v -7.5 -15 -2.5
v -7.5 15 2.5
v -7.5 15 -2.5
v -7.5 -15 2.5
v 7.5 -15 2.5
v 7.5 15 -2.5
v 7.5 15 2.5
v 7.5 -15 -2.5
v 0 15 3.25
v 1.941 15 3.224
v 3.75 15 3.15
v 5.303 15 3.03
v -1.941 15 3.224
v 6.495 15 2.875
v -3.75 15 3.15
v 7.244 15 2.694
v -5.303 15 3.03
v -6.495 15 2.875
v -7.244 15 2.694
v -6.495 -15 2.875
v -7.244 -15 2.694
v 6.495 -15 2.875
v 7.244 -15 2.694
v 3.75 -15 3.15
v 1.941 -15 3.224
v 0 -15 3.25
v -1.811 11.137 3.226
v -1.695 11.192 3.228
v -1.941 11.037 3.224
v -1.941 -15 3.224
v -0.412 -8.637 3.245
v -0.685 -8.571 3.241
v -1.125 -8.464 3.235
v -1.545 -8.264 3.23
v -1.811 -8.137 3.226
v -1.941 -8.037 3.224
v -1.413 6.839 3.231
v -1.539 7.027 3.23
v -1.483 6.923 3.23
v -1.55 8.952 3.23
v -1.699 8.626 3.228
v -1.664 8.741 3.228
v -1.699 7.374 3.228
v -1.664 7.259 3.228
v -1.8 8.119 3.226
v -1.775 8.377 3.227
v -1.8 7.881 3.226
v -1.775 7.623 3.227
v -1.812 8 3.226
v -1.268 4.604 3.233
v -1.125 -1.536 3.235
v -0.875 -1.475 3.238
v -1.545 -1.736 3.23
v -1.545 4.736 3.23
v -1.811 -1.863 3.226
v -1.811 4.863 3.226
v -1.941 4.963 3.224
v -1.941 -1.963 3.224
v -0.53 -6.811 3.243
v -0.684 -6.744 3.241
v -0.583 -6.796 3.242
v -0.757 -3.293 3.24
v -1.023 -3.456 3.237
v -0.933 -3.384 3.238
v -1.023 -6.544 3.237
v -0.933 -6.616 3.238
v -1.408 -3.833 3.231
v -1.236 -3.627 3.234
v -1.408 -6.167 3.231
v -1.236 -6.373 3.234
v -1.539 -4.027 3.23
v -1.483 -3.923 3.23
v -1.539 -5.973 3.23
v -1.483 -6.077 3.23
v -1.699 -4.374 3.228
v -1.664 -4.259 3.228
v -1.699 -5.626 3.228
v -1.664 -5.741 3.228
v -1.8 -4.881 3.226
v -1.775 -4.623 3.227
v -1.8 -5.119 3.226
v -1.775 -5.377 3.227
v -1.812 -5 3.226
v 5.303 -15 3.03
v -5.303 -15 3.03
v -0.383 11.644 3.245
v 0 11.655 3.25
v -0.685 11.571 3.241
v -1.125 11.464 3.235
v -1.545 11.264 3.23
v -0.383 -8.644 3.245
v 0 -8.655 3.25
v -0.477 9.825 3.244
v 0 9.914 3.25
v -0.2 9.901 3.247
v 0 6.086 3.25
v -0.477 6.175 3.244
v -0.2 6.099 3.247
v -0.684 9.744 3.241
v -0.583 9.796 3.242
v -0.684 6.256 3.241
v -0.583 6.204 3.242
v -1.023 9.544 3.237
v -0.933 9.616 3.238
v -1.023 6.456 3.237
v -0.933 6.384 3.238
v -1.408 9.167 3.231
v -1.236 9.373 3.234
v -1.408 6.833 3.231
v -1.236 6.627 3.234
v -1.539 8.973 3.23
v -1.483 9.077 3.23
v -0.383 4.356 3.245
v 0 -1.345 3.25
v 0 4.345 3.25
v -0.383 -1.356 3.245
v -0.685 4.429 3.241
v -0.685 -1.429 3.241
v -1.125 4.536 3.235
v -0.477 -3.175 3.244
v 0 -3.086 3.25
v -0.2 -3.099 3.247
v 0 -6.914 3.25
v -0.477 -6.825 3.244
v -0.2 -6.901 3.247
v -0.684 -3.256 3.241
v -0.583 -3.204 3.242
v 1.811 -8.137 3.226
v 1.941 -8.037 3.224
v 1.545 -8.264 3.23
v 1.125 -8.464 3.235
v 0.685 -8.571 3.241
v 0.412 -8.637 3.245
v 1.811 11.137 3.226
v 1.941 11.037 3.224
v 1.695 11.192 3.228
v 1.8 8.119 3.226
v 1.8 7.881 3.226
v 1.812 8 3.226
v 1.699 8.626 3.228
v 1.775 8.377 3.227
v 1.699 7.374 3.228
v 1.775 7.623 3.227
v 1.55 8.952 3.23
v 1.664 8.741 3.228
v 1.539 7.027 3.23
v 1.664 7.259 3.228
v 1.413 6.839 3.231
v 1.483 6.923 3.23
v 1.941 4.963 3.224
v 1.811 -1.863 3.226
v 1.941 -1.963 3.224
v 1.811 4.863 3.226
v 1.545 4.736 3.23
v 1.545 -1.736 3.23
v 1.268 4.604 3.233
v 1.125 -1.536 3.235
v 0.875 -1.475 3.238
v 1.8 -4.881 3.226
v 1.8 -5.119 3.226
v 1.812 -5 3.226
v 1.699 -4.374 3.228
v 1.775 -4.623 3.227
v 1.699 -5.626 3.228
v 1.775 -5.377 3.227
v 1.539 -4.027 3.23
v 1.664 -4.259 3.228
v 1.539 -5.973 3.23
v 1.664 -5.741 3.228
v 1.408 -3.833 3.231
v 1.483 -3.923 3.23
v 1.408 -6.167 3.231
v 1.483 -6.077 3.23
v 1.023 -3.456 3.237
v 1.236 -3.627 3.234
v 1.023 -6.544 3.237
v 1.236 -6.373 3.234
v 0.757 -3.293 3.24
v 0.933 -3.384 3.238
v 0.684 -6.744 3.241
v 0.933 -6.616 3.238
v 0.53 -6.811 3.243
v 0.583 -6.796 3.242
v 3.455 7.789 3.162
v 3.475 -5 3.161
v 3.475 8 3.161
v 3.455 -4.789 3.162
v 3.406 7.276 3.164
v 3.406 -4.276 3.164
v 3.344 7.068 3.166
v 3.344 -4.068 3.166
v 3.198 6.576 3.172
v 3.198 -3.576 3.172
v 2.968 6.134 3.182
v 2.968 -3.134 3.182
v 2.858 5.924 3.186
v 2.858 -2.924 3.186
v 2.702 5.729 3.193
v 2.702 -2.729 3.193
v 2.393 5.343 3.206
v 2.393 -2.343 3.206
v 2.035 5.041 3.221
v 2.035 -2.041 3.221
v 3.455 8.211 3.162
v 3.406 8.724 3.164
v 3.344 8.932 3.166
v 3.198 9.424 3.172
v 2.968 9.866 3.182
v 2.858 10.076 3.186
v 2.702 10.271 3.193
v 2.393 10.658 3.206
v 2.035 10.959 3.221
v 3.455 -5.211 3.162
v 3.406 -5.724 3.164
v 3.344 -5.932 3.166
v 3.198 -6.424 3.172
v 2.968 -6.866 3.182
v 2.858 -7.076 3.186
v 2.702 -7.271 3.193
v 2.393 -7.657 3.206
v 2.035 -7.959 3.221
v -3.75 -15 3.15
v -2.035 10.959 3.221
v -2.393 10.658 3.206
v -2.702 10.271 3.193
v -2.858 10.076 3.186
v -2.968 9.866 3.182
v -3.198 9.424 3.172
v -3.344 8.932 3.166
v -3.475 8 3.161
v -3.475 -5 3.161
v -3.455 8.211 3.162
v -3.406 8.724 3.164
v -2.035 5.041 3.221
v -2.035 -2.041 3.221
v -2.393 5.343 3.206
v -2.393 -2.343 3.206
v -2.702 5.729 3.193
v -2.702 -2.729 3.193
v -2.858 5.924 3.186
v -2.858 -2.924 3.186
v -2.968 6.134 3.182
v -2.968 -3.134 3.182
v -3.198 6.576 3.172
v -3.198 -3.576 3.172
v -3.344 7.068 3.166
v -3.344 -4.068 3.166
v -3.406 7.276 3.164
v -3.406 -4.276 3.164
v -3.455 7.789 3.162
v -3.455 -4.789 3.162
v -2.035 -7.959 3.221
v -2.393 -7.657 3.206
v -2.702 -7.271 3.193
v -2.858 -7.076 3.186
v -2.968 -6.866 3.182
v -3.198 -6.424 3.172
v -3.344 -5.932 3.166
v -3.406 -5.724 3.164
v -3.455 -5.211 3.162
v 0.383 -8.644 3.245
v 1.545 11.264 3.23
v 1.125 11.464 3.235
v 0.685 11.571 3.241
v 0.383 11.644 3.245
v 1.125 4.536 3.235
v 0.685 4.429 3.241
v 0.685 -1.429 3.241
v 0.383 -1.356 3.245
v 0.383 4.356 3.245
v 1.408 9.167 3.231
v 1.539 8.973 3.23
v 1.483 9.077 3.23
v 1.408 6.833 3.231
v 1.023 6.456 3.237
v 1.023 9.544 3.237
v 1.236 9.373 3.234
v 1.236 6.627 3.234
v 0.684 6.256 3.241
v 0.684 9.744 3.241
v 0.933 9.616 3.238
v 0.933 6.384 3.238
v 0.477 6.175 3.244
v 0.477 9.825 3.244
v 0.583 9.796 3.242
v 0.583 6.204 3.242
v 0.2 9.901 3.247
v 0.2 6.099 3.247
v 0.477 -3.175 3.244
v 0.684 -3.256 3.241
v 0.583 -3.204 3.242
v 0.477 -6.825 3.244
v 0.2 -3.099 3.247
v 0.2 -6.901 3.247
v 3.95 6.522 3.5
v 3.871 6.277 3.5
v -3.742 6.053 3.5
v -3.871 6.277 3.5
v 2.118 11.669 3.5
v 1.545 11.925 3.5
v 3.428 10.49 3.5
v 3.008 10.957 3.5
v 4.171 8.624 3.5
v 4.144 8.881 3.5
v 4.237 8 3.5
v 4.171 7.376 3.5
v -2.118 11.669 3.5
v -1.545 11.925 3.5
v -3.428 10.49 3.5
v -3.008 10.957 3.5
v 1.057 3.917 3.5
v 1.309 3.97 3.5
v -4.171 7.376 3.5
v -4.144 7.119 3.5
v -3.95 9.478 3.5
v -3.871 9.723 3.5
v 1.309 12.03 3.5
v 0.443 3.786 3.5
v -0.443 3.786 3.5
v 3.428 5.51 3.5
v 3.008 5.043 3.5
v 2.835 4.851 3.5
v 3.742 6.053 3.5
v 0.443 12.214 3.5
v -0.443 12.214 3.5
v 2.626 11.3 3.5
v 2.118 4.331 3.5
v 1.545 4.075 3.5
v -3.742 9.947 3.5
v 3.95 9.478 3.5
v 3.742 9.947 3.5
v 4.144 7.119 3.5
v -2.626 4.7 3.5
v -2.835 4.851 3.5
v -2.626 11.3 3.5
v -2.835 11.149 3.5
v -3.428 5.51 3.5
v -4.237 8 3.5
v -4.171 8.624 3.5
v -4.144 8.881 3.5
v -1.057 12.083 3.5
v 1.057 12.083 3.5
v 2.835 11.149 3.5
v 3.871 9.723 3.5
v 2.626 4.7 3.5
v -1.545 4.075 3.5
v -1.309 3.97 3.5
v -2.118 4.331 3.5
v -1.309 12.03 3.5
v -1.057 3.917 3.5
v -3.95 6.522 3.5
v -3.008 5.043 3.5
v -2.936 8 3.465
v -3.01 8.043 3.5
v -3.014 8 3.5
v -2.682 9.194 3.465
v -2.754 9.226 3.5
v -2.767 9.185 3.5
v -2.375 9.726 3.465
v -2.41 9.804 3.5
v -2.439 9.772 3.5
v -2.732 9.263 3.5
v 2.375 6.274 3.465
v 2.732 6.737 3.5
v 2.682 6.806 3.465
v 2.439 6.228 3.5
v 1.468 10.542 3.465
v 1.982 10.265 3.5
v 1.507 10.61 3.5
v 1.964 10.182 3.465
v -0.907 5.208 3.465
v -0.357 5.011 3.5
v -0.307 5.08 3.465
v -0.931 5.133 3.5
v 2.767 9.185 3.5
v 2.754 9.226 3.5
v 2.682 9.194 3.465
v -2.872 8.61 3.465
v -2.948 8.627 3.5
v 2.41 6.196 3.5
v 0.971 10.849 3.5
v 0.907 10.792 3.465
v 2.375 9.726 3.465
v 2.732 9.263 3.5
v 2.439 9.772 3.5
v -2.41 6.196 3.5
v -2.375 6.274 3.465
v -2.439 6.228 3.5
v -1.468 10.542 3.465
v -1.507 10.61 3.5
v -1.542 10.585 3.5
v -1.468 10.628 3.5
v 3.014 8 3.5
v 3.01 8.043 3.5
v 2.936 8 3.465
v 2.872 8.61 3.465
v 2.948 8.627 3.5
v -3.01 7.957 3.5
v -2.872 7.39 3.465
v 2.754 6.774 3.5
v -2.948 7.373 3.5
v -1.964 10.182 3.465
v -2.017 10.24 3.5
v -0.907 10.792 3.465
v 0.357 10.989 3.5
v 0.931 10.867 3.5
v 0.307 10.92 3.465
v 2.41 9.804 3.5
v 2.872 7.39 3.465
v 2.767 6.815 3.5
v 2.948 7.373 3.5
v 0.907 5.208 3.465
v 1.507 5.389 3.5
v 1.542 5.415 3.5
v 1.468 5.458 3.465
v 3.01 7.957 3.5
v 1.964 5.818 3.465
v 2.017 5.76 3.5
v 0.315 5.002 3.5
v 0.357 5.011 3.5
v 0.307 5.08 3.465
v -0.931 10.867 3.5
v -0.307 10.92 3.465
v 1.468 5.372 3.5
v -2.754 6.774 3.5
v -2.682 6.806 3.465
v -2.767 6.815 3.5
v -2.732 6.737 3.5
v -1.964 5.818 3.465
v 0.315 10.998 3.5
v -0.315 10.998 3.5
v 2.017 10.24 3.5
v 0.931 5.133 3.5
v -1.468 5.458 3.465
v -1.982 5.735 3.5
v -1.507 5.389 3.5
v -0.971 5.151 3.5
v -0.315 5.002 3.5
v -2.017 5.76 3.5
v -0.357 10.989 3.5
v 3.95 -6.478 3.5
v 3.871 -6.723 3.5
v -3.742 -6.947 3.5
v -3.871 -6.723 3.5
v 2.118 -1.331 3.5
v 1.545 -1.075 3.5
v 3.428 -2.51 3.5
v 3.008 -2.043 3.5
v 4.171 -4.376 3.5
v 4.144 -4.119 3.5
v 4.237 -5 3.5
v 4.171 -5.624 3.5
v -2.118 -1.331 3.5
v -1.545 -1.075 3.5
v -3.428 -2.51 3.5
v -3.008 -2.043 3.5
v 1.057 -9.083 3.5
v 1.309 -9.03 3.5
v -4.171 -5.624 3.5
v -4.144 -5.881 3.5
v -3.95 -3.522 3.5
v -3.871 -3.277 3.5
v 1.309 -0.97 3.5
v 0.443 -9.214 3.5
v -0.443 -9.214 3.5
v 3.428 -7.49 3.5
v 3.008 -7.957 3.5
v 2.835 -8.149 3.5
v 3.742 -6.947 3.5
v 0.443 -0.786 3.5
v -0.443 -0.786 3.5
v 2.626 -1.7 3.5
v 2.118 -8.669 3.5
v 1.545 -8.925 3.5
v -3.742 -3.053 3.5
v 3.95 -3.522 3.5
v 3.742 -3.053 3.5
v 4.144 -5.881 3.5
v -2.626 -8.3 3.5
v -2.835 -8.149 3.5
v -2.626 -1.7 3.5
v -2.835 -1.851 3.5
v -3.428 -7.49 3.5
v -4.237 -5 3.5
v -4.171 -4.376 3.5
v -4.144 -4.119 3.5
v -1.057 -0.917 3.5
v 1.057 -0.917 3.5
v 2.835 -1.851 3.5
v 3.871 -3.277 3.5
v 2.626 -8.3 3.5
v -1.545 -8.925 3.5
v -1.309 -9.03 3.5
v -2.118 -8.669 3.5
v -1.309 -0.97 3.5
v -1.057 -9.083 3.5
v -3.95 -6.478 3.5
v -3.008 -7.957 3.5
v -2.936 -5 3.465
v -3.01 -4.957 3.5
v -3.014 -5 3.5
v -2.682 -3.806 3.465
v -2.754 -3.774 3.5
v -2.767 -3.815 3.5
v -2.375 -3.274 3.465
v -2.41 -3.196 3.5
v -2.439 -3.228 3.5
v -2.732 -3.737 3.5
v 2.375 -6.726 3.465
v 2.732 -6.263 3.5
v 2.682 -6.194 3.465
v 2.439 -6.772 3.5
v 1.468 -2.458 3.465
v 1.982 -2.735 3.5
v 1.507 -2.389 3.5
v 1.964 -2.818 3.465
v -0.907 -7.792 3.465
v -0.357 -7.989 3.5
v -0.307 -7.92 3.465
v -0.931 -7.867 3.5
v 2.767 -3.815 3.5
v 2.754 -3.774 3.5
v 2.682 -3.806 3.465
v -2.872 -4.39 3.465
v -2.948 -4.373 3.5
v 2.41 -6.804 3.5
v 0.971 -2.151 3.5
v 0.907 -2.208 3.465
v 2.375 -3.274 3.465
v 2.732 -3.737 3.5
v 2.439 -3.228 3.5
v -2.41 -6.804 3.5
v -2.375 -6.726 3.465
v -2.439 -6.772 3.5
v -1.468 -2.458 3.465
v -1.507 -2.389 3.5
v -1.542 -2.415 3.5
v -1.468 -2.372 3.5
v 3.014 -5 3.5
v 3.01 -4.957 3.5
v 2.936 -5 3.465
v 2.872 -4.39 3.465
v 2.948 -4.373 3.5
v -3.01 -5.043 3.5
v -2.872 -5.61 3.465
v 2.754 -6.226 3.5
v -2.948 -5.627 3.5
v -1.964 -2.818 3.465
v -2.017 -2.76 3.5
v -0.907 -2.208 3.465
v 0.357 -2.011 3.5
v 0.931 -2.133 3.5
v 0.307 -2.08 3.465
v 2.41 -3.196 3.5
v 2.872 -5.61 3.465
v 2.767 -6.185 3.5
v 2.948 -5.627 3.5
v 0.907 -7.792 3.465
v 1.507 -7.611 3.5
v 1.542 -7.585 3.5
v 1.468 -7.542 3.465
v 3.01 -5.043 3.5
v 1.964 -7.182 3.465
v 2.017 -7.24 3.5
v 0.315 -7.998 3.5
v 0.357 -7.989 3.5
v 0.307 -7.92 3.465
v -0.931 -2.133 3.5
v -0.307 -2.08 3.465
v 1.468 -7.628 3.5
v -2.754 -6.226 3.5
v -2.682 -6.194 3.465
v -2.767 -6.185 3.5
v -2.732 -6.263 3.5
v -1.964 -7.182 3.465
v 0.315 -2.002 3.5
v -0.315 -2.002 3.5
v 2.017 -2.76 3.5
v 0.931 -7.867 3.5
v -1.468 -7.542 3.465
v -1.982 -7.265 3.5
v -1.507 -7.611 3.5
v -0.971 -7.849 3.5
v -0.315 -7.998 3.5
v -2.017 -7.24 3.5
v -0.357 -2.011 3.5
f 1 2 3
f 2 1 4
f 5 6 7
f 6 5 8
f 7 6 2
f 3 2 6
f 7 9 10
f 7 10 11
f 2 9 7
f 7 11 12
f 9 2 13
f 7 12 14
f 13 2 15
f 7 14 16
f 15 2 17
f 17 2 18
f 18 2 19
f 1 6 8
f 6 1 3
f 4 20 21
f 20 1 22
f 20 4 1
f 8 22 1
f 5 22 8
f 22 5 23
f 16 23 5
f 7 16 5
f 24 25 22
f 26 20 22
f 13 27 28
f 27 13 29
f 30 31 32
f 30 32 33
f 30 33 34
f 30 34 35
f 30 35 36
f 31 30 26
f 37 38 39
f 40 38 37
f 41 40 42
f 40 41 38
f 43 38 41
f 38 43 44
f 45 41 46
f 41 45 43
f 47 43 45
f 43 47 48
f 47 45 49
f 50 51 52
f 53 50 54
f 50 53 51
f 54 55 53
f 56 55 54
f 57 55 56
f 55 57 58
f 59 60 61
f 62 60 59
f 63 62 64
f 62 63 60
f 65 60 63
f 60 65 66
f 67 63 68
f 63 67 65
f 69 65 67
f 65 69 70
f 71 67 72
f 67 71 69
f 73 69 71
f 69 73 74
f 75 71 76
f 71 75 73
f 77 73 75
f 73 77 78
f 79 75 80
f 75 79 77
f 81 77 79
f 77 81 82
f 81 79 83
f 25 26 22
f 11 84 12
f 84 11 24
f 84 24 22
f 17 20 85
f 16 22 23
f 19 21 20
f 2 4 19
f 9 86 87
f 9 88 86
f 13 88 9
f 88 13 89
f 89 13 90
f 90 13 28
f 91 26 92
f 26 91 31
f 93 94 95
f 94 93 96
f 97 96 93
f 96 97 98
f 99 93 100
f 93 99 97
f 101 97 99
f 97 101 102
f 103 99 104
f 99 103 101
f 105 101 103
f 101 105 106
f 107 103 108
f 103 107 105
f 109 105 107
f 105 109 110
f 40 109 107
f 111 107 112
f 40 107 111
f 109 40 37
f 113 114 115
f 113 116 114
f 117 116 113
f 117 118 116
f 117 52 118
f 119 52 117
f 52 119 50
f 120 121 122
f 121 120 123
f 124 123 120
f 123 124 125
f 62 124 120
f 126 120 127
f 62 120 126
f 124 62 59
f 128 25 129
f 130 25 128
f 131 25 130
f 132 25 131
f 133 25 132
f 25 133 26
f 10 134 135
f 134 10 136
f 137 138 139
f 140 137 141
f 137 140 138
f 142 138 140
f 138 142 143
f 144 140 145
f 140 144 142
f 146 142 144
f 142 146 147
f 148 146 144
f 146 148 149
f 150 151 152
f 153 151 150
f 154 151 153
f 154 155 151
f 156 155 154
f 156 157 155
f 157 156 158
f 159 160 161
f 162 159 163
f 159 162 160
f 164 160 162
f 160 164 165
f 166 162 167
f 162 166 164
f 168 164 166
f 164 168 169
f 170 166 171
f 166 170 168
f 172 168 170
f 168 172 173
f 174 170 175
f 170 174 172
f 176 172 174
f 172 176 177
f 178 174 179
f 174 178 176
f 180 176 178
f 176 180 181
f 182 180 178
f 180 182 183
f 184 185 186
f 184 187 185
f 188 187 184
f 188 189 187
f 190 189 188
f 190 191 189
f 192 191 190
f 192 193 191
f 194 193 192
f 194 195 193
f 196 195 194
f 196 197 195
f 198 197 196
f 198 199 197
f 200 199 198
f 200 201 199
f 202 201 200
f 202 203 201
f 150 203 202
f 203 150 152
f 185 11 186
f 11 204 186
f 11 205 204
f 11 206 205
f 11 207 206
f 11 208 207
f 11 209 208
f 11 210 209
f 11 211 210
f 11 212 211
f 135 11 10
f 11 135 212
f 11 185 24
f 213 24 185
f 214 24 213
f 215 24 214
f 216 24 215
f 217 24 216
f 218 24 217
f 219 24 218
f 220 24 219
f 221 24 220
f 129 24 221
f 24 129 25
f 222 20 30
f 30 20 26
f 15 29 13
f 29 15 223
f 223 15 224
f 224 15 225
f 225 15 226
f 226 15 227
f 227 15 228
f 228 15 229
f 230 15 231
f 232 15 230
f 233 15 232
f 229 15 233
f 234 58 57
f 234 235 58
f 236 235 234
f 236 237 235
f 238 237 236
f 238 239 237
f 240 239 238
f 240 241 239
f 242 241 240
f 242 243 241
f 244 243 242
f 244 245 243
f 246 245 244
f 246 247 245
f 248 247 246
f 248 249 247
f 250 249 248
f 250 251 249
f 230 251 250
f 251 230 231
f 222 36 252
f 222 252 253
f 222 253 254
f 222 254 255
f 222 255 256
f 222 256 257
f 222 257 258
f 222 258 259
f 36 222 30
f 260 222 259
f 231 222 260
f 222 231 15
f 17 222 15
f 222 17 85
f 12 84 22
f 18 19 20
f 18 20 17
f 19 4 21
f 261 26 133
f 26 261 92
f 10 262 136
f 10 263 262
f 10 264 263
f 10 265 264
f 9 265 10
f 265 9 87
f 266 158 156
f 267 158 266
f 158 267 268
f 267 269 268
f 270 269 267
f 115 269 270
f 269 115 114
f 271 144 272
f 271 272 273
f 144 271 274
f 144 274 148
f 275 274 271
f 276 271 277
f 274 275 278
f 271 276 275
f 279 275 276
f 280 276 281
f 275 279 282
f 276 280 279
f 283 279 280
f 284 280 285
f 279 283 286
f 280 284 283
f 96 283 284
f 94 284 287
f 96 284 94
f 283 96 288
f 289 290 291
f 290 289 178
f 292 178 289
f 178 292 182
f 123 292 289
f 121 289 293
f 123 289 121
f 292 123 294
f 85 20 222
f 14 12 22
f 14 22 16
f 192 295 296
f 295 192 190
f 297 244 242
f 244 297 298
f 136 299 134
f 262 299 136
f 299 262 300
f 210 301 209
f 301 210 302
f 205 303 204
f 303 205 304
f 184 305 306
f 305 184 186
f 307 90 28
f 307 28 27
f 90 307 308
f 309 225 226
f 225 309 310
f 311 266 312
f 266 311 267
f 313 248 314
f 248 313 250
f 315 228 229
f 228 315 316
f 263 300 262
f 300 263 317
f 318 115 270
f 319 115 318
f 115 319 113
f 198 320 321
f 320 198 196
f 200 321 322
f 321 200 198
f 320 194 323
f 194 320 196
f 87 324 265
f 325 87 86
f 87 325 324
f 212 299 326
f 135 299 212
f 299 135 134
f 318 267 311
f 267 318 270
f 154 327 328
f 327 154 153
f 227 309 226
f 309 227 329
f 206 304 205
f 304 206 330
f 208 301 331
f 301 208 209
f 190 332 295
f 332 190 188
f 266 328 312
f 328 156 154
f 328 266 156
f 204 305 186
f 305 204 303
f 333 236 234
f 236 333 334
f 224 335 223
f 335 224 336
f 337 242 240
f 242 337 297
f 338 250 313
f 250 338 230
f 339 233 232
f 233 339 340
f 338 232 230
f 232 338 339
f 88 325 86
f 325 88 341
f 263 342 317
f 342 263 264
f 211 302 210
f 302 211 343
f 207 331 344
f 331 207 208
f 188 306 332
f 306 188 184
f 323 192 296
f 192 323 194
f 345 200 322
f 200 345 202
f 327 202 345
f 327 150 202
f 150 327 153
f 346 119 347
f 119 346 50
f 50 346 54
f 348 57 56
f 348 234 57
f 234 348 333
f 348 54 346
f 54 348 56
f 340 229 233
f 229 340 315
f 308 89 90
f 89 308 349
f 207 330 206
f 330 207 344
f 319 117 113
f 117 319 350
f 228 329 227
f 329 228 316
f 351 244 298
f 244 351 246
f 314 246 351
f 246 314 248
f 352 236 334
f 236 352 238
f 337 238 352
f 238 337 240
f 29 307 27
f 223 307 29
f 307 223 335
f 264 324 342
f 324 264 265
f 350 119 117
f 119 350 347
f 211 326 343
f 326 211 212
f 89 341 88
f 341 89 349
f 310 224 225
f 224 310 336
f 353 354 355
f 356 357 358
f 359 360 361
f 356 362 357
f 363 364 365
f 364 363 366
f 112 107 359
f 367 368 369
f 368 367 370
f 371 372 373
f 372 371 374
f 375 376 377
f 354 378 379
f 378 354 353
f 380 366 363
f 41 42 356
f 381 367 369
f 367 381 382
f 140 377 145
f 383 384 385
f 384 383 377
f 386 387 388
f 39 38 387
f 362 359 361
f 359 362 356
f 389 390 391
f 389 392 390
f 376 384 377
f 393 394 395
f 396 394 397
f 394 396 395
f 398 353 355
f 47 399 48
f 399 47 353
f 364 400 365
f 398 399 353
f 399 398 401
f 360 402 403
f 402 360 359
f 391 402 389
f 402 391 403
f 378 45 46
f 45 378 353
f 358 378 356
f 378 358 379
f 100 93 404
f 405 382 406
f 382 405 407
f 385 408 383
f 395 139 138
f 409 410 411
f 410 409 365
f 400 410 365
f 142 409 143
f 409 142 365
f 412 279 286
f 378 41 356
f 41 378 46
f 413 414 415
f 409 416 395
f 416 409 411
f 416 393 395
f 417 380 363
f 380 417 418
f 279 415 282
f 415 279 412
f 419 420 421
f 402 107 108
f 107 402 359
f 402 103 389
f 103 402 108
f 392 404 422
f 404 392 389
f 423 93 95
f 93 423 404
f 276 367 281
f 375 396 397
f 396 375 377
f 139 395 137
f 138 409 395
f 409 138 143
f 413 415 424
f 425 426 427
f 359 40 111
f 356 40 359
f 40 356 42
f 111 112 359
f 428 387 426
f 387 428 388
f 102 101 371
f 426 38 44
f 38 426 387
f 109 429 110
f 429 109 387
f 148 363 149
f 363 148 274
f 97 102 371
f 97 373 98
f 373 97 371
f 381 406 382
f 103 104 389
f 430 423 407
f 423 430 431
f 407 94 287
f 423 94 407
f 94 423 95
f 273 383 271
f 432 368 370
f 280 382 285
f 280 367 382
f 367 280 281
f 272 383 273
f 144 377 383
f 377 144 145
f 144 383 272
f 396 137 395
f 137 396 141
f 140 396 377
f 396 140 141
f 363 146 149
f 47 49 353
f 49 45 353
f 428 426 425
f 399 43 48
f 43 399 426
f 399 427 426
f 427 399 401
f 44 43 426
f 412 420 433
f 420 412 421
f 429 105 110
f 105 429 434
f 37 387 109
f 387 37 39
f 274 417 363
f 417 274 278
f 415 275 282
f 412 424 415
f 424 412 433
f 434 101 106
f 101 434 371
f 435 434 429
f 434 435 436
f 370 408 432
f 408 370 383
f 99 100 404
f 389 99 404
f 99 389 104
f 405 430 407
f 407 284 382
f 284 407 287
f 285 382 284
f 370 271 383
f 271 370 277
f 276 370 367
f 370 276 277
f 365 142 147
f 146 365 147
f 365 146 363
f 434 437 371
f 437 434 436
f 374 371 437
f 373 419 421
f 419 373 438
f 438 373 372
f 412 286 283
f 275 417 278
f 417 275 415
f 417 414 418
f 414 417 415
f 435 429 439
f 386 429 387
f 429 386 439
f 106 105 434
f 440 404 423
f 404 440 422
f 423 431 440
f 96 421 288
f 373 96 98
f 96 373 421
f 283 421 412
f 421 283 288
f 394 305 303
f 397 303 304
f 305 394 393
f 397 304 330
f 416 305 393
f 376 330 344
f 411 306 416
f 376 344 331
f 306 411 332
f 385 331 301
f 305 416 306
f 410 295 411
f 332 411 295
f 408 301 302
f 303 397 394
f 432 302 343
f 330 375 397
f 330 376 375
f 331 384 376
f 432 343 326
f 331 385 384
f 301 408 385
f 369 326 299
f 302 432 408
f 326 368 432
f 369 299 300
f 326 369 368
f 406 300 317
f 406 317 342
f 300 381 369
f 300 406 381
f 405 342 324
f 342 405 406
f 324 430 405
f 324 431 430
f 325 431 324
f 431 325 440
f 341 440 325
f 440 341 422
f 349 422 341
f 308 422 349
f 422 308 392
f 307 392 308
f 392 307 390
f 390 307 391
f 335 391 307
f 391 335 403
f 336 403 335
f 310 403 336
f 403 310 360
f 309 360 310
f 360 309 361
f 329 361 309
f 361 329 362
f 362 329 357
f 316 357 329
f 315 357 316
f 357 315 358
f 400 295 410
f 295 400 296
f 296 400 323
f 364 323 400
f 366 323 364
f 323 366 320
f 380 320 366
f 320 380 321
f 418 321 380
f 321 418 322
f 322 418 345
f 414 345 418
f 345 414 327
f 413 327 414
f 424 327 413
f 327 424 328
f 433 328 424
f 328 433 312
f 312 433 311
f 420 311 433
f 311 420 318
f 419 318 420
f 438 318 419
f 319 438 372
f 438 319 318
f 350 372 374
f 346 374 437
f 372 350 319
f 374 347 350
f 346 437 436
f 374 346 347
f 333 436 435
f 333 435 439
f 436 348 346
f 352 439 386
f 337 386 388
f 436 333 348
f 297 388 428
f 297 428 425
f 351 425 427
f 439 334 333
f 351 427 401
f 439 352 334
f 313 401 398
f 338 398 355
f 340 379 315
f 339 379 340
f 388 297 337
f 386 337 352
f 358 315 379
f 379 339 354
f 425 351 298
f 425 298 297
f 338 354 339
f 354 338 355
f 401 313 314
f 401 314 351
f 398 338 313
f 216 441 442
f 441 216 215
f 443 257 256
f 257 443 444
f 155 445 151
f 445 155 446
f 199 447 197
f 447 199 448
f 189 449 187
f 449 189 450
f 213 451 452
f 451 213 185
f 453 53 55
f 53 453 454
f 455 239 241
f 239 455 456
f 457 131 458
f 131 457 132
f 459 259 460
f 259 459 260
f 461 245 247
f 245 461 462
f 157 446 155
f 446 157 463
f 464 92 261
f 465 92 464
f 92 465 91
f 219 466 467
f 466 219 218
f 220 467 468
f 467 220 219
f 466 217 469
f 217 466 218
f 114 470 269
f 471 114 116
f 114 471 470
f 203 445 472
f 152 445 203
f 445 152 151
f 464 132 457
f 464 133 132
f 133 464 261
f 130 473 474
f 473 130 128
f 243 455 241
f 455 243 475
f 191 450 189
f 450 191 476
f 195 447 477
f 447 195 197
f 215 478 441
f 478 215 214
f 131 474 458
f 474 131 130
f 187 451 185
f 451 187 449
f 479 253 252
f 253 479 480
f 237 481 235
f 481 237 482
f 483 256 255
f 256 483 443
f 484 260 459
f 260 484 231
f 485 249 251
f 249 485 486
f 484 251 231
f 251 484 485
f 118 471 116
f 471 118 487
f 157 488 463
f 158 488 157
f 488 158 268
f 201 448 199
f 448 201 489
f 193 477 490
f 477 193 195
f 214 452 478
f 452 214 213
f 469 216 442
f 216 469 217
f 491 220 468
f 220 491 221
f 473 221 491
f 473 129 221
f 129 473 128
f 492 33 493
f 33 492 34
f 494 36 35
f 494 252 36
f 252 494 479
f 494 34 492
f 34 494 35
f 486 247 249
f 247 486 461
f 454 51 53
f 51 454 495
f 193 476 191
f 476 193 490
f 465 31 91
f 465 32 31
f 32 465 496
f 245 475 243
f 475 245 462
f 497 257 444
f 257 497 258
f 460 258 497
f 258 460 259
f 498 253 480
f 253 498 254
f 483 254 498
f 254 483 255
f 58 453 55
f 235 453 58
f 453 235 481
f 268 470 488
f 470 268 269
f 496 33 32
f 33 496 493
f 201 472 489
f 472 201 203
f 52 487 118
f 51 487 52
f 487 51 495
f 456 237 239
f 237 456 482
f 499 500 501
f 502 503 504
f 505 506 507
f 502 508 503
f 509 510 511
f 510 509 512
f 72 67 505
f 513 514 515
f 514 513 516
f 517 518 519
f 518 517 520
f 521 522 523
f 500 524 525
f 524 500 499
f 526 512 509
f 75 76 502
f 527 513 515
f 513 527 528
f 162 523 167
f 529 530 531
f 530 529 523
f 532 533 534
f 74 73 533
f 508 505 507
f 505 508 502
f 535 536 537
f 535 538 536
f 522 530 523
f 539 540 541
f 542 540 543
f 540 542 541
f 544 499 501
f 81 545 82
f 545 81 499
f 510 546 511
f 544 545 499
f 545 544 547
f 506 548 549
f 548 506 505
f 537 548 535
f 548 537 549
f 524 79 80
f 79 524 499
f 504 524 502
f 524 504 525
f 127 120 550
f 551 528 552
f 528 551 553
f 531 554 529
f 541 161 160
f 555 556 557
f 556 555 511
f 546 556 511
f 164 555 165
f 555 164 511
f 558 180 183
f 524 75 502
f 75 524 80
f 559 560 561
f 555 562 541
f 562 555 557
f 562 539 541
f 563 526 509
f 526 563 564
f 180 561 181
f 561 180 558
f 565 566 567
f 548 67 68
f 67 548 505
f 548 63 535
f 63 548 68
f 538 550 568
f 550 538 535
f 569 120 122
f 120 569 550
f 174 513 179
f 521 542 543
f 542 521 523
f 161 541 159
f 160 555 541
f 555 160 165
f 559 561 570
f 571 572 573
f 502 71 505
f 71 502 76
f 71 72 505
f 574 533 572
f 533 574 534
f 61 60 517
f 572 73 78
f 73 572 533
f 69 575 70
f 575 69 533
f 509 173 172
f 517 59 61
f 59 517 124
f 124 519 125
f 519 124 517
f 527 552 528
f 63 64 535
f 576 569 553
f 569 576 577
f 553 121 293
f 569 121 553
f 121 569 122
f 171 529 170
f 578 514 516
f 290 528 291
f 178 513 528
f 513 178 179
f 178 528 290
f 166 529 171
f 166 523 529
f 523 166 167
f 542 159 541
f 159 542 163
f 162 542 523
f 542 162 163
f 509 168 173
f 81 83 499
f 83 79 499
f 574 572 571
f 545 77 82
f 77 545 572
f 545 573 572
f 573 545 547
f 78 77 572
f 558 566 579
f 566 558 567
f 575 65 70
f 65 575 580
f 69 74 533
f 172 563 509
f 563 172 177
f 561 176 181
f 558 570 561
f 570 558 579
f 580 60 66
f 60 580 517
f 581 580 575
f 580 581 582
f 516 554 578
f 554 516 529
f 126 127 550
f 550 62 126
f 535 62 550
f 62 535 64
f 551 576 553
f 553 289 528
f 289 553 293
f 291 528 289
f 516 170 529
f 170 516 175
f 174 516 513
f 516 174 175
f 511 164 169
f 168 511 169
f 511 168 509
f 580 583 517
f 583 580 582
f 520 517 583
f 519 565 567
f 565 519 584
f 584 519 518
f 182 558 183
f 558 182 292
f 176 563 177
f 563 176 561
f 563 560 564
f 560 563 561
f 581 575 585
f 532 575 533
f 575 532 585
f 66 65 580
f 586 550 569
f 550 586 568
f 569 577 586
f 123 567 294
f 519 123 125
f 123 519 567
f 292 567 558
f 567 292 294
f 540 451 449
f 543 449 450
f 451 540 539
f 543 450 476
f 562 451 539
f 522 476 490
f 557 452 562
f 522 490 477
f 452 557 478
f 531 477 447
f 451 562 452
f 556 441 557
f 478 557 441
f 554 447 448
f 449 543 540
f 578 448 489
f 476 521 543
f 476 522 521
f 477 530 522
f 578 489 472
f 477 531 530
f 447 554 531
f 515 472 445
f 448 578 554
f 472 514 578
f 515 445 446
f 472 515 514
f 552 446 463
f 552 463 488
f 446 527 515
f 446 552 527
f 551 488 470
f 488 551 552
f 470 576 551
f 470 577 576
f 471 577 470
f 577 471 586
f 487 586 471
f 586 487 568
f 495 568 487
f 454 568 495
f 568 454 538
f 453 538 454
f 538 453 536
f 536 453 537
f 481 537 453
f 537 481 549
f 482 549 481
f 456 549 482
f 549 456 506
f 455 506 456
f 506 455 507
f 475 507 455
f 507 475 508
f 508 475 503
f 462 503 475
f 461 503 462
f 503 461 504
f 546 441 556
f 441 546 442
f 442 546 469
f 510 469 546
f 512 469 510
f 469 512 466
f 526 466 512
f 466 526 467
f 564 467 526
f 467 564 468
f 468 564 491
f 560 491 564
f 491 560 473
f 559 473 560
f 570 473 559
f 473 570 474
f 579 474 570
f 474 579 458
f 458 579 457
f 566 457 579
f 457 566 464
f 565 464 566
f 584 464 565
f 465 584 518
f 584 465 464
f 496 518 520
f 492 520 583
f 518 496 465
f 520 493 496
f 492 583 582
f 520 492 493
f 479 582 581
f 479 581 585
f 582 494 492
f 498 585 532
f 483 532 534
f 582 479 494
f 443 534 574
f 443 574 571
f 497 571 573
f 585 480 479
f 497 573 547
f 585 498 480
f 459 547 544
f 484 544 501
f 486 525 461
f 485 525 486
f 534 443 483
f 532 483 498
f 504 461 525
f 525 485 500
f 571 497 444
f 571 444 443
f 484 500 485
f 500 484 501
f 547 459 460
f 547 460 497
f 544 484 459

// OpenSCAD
width = 15;
length = 30;
height = 5;


difference() {
  body();
  translate([0, 8, 2.5])
    round_button();
}

translate([0, 8, 2.5])
  round_button();
      
translate([0, -5, 2.5])
  round_button();



module round_button() {
  translate([0, 0, 10])
  difference() {
    difference() {
      sphere(r=10, $fs=0.1);
      sphere(r=9.5, $fs=0.1);
    }
  
    translate([0, 0, 1])
      cube([20, 20, 20,], center=true); 
  }
}

module body() {
  cube([width, length, height], center=true);

  translate([0, 0, height/2])
    scale([1, 1, 0.1])
     rotate([90, 0, 0])
        cylinder(r=width/2, h=length, center=true);
}
